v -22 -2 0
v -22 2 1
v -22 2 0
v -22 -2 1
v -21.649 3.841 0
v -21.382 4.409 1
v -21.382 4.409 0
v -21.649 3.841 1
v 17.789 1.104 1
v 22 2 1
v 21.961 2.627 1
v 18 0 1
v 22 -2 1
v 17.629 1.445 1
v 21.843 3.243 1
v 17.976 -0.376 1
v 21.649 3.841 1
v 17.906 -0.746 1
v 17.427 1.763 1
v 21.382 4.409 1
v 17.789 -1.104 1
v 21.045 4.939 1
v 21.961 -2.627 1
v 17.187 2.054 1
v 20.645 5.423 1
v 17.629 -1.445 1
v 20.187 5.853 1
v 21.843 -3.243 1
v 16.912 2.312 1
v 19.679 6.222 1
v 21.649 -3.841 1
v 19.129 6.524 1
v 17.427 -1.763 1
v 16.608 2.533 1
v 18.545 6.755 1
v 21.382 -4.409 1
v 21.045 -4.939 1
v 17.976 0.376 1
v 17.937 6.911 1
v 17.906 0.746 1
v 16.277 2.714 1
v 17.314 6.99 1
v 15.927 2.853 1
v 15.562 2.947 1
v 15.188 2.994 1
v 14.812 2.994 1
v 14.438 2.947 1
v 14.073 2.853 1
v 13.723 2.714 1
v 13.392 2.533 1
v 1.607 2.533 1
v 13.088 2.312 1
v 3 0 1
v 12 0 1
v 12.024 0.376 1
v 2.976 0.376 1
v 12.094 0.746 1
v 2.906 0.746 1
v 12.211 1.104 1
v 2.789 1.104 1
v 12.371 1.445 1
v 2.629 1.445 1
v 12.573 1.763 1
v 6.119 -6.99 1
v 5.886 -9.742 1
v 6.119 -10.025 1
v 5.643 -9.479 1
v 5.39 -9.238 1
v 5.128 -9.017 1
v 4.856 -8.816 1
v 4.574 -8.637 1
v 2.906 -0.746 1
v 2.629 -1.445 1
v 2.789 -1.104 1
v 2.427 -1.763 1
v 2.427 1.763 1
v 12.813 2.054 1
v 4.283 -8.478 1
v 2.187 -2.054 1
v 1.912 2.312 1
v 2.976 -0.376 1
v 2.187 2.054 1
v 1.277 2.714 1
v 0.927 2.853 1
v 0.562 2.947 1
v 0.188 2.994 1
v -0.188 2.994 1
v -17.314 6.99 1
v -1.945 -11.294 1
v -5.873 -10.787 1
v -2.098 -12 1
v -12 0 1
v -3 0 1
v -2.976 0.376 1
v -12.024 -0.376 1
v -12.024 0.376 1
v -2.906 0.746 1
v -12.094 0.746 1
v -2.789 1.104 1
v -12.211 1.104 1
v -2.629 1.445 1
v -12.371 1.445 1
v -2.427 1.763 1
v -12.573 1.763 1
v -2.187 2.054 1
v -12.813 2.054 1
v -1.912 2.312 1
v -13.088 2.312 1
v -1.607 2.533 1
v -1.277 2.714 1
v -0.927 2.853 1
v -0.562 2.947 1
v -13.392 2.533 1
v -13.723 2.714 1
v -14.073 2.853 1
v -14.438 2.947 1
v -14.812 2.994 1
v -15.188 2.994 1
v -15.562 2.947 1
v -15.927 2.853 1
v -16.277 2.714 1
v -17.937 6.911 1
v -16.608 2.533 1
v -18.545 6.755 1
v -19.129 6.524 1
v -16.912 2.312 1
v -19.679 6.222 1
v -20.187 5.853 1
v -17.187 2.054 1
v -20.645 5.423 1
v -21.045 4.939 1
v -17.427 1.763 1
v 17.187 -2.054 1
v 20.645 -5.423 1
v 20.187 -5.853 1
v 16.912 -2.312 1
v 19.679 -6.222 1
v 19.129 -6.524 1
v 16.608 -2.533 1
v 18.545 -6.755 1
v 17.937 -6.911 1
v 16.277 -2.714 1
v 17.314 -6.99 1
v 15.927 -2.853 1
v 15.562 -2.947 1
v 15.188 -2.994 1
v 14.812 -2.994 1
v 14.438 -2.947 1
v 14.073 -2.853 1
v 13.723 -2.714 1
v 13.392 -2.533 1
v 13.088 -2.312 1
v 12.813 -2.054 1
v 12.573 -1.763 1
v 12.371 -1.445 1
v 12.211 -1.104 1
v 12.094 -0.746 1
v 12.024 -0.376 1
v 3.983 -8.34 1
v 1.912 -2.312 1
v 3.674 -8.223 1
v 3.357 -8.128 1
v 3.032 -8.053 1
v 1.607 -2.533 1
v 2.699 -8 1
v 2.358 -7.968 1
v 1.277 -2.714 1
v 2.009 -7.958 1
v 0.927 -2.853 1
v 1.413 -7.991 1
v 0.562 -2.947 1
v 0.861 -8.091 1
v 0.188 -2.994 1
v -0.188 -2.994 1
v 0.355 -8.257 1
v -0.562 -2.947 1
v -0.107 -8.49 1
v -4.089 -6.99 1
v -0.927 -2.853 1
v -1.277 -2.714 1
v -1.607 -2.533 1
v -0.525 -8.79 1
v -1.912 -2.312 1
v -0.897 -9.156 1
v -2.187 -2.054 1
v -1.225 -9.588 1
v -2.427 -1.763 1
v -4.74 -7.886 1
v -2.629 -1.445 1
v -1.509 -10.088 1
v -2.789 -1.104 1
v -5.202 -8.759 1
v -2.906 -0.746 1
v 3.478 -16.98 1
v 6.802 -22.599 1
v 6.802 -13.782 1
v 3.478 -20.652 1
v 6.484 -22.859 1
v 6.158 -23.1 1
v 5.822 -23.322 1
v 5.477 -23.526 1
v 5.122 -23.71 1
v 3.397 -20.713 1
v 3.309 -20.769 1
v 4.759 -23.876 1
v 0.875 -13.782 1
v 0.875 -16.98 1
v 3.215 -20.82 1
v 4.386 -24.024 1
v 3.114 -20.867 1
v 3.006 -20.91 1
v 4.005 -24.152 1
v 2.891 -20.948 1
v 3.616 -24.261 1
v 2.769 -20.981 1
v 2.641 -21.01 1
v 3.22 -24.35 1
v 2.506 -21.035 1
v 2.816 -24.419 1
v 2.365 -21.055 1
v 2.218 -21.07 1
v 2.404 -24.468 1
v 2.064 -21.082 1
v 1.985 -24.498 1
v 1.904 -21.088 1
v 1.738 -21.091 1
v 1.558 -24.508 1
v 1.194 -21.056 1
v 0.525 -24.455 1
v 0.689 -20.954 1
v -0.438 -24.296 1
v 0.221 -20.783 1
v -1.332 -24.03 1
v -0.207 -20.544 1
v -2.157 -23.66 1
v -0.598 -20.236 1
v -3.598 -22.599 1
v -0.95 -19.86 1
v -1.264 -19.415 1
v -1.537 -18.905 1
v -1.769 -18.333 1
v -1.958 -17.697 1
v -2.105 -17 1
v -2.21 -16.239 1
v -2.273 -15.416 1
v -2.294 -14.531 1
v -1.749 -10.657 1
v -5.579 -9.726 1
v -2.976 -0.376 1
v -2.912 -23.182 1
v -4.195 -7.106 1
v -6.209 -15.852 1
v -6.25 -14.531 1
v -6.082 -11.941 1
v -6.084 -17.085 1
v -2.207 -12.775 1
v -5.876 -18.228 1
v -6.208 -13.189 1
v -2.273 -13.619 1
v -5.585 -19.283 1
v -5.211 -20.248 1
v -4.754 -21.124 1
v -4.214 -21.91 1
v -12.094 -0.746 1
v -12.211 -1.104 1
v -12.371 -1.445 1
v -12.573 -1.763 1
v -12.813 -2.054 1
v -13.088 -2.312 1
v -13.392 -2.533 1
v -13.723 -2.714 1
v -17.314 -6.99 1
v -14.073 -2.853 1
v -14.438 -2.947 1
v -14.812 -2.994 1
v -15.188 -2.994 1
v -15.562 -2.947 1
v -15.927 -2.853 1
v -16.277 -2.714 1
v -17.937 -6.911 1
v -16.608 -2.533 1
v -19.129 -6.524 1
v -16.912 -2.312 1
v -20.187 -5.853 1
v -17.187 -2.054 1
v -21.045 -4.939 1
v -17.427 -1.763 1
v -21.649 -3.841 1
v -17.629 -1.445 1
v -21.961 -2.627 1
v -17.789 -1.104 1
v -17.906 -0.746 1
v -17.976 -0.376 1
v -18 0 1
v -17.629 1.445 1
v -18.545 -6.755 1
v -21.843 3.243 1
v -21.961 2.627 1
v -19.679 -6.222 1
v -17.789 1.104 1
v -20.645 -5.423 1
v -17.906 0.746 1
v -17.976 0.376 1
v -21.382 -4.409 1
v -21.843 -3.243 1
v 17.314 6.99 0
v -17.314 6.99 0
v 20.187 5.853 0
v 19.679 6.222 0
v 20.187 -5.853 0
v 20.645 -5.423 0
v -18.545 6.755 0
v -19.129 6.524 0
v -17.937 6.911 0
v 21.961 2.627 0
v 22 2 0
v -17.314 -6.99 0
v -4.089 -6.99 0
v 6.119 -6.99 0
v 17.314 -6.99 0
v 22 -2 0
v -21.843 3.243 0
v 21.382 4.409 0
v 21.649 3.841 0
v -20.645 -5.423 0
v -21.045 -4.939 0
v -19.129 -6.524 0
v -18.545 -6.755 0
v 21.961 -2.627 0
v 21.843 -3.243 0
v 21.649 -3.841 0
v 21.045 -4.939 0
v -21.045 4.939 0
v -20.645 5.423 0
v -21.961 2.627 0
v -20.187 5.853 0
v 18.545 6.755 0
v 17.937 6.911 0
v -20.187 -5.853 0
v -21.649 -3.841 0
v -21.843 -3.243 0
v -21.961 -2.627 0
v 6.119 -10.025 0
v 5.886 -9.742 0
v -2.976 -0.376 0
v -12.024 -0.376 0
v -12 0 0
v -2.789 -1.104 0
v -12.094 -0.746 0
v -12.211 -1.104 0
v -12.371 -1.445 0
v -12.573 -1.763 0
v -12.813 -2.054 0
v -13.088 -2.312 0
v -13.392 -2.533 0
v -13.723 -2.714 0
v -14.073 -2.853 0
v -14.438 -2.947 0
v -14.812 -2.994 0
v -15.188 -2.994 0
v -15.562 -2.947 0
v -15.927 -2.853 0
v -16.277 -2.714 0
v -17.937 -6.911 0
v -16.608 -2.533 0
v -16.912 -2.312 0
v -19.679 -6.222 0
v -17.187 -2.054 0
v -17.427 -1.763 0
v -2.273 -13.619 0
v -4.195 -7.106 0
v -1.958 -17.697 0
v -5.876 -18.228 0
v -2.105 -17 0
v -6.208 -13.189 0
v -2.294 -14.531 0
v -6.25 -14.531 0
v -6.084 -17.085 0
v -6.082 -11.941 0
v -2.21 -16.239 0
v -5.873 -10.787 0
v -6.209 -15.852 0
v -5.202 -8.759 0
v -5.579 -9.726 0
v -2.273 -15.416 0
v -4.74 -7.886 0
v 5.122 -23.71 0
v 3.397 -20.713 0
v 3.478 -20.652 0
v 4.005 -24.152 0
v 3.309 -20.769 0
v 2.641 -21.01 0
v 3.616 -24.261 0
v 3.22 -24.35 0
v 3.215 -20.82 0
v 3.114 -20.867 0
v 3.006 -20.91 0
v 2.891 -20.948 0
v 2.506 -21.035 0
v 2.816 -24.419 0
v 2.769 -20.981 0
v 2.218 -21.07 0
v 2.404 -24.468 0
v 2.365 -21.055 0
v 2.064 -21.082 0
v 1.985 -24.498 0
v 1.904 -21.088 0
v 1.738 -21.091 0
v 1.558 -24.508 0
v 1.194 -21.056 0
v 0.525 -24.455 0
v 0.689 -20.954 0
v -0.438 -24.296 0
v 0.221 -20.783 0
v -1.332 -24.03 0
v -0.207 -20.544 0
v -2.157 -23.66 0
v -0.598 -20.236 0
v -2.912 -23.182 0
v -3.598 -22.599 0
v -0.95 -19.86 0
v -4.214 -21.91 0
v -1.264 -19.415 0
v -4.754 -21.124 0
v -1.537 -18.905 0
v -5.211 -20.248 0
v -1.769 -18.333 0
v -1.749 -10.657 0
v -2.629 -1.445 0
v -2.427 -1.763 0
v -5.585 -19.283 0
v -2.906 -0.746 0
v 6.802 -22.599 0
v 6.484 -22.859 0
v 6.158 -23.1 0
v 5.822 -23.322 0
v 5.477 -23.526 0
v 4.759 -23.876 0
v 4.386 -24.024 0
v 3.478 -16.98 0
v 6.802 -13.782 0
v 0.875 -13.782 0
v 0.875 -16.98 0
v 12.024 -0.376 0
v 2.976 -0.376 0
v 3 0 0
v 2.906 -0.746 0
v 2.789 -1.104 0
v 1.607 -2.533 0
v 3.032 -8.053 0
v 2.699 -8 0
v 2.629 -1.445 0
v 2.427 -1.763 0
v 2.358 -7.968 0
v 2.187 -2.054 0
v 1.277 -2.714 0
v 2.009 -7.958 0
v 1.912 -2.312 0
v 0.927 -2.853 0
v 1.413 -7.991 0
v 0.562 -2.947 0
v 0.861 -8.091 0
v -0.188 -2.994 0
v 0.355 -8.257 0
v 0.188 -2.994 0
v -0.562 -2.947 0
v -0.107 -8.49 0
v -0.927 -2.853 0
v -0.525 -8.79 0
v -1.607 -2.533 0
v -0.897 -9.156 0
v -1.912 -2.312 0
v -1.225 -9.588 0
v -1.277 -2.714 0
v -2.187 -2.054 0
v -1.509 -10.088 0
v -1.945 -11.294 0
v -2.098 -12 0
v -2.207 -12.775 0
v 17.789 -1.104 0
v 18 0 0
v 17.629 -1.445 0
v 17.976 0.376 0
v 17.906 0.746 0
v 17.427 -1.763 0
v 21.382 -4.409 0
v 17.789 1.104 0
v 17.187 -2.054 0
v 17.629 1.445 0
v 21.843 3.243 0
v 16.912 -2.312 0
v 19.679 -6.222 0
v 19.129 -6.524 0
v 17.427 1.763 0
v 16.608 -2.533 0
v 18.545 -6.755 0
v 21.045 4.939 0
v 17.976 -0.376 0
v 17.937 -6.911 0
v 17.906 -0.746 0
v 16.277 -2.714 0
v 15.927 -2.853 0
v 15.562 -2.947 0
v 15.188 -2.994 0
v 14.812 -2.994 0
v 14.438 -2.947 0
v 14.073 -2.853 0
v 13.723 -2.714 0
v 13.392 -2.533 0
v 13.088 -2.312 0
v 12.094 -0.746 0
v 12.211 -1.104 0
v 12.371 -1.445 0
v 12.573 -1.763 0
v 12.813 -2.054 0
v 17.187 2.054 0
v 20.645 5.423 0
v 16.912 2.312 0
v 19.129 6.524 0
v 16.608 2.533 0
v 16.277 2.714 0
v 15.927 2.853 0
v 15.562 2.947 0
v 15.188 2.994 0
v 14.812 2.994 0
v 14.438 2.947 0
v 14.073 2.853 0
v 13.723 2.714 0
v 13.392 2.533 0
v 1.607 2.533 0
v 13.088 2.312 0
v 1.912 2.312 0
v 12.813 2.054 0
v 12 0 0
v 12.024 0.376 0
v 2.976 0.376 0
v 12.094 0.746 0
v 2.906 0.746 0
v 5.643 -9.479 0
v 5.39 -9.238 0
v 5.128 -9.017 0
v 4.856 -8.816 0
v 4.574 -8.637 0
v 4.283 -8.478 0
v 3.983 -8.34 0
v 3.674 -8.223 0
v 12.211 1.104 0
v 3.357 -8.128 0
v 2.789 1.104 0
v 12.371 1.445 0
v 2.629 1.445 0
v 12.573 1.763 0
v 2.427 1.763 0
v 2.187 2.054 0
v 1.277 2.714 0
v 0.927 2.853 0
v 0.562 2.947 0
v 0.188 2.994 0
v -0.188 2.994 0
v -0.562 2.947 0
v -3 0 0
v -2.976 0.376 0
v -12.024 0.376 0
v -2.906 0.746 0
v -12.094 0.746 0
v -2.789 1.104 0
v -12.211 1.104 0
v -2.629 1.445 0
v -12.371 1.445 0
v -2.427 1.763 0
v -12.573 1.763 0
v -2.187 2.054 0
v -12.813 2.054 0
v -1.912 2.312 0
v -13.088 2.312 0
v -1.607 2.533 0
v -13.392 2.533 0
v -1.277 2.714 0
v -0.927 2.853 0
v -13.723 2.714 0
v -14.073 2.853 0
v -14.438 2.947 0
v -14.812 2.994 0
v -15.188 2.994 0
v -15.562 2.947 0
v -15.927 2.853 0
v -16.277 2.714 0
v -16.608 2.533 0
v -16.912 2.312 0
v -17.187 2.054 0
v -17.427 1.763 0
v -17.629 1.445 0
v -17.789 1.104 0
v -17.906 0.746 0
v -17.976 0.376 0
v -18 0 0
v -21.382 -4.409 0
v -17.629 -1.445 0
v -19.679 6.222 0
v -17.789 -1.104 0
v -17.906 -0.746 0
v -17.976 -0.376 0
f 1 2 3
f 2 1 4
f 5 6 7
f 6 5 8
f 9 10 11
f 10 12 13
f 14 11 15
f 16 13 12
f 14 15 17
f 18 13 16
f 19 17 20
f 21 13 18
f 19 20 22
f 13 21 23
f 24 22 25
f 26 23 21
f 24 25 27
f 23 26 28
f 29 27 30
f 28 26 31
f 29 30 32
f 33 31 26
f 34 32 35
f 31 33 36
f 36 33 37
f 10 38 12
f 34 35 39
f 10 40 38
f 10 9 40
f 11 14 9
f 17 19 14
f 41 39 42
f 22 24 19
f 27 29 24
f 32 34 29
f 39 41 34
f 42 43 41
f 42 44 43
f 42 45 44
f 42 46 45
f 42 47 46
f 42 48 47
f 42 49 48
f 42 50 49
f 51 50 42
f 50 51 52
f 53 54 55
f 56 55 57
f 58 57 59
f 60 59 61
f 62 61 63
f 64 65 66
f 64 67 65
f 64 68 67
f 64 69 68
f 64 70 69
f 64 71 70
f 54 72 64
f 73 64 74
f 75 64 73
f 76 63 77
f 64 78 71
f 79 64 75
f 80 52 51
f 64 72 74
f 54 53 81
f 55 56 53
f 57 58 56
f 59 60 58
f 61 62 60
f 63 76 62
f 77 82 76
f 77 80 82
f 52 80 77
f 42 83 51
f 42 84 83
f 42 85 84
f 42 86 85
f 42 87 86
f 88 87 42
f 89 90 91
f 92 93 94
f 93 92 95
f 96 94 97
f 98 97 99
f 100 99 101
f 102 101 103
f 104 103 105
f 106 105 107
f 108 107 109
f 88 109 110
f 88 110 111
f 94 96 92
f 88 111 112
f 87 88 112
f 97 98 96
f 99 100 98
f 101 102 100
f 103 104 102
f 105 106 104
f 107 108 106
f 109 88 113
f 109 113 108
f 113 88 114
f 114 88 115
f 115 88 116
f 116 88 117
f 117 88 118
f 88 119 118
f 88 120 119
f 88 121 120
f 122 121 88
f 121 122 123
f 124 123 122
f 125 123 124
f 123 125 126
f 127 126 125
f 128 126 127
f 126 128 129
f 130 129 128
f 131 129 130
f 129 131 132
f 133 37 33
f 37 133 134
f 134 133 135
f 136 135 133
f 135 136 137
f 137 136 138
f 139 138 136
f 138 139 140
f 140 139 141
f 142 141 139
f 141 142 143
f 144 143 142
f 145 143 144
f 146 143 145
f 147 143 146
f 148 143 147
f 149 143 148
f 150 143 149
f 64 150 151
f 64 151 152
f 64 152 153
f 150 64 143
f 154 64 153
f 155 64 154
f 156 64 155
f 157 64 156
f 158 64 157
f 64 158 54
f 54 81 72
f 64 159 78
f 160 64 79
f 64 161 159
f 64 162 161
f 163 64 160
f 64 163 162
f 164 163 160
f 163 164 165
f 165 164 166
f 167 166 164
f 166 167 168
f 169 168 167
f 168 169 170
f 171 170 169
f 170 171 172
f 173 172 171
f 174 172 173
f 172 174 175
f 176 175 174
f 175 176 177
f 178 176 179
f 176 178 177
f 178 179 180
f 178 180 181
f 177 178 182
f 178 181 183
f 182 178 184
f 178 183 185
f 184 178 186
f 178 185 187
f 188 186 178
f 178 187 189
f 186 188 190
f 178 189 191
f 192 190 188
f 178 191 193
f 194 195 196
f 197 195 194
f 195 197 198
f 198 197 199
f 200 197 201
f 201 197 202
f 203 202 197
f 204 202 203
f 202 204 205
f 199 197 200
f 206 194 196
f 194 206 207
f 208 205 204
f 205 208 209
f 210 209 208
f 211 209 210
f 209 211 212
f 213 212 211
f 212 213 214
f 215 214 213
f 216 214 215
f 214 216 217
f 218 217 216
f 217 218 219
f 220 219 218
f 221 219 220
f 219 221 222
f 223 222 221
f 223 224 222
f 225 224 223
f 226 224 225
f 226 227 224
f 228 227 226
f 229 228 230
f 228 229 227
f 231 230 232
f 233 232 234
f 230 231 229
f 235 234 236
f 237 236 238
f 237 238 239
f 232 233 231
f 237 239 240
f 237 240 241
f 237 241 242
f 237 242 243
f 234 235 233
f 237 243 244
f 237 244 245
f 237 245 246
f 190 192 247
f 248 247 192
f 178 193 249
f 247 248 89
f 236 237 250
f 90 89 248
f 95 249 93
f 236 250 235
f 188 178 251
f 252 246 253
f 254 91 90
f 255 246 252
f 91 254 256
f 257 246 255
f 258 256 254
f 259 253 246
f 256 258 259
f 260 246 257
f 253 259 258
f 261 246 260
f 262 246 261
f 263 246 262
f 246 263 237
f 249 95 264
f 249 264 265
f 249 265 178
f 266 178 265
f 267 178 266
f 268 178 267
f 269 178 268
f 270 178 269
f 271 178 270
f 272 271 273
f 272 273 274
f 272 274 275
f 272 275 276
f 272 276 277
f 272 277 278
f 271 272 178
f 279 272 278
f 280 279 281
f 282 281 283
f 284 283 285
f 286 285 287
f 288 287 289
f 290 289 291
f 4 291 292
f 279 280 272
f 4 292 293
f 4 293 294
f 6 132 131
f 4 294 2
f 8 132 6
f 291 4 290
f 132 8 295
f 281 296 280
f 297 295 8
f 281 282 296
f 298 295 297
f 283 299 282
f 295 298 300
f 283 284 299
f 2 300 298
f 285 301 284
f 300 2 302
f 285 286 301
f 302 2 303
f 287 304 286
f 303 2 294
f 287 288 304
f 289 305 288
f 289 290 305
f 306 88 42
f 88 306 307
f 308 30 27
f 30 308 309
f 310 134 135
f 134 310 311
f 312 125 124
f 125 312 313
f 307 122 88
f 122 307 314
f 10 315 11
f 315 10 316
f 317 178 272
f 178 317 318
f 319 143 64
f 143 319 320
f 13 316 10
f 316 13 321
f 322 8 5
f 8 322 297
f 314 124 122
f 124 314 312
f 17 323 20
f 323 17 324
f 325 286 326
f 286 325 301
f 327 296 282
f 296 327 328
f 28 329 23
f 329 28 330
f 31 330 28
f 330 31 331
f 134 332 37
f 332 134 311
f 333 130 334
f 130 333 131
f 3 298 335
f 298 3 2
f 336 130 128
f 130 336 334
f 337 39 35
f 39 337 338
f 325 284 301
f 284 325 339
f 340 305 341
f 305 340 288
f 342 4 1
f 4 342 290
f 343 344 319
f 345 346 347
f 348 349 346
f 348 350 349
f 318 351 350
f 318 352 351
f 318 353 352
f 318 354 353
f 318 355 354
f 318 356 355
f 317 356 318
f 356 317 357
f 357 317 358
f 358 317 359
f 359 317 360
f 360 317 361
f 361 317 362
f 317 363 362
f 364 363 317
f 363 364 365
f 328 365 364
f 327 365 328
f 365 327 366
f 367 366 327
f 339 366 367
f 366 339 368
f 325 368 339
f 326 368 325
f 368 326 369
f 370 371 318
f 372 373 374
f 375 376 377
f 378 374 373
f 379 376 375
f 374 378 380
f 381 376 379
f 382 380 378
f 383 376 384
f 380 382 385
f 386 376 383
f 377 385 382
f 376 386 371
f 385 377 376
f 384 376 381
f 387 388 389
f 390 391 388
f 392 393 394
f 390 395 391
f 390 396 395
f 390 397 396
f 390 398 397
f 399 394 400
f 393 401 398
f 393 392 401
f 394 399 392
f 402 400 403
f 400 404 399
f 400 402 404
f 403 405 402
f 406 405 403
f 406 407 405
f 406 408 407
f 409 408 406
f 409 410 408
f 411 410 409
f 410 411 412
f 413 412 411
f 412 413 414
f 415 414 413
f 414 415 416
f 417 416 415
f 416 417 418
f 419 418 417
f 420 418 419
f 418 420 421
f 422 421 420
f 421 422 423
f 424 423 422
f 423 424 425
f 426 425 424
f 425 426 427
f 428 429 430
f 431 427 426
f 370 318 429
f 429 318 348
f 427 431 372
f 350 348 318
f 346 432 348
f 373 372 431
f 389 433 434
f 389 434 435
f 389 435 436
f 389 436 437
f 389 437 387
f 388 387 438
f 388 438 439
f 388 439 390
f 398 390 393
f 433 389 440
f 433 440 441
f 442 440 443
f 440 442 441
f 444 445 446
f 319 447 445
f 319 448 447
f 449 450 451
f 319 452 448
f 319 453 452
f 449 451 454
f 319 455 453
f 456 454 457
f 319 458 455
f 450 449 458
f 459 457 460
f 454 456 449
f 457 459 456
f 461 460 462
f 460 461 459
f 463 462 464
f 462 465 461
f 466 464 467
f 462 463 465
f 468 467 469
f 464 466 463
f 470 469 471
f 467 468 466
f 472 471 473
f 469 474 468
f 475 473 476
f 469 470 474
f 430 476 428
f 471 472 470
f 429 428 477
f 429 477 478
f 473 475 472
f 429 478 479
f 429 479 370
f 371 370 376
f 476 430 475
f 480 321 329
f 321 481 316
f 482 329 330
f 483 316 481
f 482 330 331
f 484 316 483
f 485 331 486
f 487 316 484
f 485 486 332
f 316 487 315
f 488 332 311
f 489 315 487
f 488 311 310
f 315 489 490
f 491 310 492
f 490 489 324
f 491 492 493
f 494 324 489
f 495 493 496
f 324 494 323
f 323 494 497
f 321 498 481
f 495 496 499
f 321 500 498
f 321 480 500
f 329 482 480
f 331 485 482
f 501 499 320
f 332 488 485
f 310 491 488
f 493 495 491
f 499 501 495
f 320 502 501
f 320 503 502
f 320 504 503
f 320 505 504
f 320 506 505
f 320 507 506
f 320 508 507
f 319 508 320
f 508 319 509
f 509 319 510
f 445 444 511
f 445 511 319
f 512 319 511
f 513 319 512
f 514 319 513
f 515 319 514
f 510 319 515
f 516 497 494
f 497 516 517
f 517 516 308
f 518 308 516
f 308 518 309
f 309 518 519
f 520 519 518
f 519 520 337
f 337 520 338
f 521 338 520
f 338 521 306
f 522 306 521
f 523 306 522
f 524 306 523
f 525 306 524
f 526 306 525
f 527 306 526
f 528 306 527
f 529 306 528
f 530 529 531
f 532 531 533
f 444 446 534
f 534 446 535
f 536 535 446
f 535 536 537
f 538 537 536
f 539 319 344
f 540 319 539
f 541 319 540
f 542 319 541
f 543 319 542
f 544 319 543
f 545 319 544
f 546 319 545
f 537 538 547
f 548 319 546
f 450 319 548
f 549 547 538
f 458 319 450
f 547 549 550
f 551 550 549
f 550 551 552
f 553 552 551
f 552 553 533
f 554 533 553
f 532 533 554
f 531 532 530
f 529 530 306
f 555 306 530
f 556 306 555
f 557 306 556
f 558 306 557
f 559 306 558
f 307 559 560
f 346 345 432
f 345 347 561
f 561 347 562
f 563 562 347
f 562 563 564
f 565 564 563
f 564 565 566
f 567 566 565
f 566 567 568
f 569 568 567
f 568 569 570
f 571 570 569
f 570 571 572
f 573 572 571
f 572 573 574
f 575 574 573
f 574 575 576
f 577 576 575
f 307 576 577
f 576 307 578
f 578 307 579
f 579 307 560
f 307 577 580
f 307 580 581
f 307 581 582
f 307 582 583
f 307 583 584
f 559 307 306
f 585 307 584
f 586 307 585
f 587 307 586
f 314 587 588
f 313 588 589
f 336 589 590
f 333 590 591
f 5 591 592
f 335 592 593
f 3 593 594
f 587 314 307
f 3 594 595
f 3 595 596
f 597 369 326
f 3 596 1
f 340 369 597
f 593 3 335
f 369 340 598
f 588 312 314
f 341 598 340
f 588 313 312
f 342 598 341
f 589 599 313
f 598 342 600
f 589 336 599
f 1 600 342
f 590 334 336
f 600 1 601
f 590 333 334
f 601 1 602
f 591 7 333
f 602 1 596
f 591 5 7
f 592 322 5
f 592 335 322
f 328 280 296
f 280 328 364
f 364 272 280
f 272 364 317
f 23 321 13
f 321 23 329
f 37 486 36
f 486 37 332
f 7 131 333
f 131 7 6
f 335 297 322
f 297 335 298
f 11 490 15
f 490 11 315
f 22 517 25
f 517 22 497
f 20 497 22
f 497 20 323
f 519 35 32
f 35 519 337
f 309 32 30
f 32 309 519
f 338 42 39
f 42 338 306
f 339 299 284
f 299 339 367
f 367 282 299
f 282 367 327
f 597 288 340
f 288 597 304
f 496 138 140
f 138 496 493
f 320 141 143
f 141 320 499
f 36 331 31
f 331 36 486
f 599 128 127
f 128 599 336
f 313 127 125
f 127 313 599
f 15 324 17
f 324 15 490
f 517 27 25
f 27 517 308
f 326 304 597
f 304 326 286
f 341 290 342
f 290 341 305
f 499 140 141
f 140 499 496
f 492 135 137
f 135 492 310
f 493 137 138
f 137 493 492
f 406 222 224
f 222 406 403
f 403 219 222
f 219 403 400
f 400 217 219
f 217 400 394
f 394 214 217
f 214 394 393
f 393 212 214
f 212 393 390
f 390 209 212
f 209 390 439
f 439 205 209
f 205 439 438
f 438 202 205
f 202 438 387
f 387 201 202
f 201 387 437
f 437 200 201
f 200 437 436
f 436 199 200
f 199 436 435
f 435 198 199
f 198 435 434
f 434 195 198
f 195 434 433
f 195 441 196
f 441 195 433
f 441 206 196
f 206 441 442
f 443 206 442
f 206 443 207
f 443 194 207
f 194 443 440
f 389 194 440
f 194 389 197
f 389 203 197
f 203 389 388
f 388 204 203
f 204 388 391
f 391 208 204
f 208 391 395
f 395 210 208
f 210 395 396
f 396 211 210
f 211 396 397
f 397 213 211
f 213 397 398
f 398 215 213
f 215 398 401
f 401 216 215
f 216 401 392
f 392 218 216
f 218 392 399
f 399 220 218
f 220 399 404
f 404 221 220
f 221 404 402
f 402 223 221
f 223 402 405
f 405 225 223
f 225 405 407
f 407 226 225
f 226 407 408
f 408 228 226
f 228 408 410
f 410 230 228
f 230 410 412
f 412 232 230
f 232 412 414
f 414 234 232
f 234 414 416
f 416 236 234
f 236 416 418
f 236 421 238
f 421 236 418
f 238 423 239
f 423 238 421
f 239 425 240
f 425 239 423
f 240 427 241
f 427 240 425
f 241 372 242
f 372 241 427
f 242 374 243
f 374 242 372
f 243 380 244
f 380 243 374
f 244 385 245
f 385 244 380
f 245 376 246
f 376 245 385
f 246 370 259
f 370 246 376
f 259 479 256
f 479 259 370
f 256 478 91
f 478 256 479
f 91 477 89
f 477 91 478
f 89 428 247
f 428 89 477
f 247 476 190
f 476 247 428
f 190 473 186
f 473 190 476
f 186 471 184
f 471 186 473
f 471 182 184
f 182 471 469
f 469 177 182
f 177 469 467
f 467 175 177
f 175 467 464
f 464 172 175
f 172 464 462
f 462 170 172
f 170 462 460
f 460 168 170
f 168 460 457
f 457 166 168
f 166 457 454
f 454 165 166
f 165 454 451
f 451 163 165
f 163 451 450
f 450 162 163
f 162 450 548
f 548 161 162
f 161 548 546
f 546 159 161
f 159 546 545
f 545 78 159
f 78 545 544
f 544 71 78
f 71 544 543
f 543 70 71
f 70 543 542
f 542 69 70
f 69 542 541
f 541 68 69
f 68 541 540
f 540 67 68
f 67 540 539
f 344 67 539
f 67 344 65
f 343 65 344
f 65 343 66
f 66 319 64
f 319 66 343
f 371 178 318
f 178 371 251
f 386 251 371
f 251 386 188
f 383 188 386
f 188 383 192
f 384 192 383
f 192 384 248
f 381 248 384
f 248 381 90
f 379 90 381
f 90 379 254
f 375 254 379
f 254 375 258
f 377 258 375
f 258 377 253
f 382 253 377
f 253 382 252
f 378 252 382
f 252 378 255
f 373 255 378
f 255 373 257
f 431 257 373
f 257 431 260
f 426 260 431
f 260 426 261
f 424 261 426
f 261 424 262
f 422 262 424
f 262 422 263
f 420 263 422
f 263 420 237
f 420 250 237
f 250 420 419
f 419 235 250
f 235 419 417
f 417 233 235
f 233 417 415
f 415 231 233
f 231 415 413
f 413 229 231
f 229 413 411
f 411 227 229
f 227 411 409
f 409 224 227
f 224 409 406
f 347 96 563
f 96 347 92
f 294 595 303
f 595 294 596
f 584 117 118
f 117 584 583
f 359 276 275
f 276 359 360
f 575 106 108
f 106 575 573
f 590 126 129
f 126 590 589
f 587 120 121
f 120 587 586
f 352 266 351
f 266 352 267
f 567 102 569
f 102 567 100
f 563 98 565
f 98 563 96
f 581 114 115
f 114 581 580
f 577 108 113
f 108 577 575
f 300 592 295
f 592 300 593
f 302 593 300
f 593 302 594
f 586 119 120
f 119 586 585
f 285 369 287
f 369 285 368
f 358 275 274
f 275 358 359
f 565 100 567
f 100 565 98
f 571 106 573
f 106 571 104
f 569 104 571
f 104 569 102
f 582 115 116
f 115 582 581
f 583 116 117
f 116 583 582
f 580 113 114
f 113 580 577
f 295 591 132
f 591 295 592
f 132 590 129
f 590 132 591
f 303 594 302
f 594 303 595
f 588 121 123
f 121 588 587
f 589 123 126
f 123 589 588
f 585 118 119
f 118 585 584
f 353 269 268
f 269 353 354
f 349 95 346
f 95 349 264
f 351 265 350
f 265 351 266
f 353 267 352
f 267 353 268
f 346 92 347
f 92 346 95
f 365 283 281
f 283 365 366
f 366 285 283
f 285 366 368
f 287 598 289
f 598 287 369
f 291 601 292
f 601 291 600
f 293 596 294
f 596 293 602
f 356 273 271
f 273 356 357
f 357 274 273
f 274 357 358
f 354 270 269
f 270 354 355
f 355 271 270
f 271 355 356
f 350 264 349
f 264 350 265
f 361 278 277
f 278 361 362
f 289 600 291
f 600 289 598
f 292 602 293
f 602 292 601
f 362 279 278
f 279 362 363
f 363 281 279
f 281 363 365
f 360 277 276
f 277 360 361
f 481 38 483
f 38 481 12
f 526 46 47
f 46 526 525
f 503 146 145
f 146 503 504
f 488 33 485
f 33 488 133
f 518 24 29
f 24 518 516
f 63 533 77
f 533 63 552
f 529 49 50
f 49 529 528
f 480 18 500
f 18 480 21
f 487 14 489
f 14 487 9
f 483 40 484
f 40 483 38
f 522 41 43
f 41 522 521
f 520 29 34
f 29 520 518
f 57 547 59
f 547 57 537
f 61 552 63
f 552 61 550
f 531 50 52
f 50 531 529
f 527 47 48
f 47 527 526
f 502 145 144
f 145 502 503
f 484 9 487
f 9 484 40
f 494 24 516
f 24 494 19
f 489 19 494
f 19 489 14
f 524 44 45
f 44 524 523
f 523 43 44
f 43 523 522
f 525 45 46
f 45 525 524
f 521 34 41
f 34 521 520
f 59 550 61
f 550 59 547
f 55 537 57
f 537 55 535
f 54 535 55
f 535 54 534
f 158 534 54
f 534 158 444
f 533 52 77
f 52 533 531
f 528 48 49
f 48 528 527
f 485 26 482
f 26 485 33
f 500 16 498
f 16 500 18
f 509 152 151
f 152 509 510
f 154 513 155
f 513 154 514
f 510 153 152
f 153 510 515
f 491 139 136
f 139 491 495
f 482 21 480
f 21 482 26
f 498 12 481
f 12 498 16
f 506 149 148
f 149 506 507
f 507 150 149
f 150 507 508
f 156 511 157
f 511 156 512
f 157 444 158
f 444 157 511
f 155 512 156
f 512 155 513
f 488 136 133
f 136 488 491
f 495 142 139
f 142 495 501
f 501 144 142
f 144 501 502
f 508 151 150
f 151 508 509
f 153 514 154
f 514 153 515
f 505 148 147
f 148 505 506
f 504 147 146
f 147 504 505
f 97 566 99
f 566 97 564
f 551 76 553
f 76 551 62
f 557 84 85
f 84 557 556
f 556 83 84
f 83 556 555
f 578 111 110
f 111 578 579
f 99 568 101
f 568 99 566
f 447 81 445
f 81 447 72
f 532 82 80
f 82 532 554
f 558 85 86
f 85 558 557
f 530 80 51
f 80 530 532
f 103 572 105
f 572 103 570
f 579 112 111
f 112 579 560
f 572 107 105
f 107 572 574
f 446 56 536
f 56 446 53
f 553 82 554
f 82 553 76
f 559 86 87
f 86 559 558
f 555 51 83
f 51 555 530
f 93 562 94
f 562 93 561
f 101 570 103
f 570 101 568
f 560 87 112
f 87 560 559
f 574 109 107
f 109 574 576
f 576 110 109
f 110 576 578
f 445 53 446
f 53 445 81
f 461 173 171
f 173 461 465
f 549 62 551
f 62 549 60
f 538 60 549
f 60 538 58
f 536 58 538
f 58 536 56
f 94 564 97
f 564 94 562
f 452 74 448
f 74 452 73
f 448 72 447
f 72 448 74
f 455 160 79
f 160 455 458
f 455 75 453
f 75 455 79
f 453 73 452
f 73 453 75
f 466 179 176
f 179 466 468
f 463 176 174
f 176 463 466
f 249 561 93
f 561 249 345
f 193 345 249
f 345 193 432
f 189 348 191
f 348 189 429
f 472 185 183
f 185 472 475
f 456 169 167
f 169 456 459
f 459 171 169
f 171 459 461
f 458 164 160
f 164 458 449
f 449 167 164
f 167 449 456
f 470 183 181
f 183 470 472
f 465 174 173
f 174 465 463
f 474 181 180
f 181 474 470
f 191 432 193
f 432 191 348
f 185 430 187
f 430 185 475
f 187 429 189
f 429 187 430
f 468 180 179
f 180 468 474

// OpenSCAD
$fn = 50;


difference() {
	union() {
		translate(v = [0, 0, 0]) {
			rotate(a = [0, 0, 0]) {
				hull() {
					translate(v = [-17.0000000000, 2.0000000000, 0]) {
						rotate(a = [0, 0, 0]) {
							translate(v = [0, 0, 0]) {
								rotate(a = [0, 0, 0]) {
									cylinder(h = 1, r = 5);
								}
							}
						}
					}
					translate(v = [17.0000000000, 2.0000000000, 0]) {
						rotate(a = [0, 0, 0]) {
							translate(v = [0, 0, 0]) {
								rotate(a = [0, 0, 0]) {
									cylinder(h = 1, r = 5);
								}
							}
						}
					}
					translate(v = [-17.0000000000, -2.0000000000, 0]) {
						rotate(a = [0, 0, 0]) {
							translate(v = [0, 0, 0]) {
								rotate(a = [0, 0, 0]) {
									cylinder(h = 1, r = 5);
								}
							}
						}
					}
					translate(v = [17.0000000000, -2.0000000000, 0]) {
						rotate(a = [0, 0, 0]) {
							translate(v = [0, 0, 0]) {
								rotate(a = [0, 0, 0]) {
									cylinder(h = 1, r = 5);
								}
							}
						}
					}
				}
			}
		}
		translate(v = [0, -5, 0]) {
			rotate(a = [0, 0, 0]) {
				linear_extrude(height = 1) {
					text(font = "DejaVu Sans Mono:style=Bold", halign = "center", size = 19.0000000000, text = "G", valign = "top");
				}
			}
		}
	}
	union() {
		translate(v = [-15.0000000000, 0.0000000000, -125.0000000000]) {
			rotate(a = [0, 0, 0]) {
				cylinder(h = 250, r = 3.0000000000);
			}
		}
		translate(v = [15.0000000000, 0.0000000000, -125.0000000000]) {
			rotate(a = [0, 0, 0]) {
				cylinder(h = 250, r = 3.0000000000);
			}
		}
		translate(v = [15.0000000000, 0.0000000000, -125.0000000000]) {
			rotate(a = [0, 0, 0]) {
				cylinder(h = 250, r = 3.0000000000);
			}
		}
		translate(v = [0, 0, -125.0000000000]) {
			rotate(a = [0, 0, 0]) {
				cylinder(h = 250, r = 3.0000000000);
			}
		}
	}
}
